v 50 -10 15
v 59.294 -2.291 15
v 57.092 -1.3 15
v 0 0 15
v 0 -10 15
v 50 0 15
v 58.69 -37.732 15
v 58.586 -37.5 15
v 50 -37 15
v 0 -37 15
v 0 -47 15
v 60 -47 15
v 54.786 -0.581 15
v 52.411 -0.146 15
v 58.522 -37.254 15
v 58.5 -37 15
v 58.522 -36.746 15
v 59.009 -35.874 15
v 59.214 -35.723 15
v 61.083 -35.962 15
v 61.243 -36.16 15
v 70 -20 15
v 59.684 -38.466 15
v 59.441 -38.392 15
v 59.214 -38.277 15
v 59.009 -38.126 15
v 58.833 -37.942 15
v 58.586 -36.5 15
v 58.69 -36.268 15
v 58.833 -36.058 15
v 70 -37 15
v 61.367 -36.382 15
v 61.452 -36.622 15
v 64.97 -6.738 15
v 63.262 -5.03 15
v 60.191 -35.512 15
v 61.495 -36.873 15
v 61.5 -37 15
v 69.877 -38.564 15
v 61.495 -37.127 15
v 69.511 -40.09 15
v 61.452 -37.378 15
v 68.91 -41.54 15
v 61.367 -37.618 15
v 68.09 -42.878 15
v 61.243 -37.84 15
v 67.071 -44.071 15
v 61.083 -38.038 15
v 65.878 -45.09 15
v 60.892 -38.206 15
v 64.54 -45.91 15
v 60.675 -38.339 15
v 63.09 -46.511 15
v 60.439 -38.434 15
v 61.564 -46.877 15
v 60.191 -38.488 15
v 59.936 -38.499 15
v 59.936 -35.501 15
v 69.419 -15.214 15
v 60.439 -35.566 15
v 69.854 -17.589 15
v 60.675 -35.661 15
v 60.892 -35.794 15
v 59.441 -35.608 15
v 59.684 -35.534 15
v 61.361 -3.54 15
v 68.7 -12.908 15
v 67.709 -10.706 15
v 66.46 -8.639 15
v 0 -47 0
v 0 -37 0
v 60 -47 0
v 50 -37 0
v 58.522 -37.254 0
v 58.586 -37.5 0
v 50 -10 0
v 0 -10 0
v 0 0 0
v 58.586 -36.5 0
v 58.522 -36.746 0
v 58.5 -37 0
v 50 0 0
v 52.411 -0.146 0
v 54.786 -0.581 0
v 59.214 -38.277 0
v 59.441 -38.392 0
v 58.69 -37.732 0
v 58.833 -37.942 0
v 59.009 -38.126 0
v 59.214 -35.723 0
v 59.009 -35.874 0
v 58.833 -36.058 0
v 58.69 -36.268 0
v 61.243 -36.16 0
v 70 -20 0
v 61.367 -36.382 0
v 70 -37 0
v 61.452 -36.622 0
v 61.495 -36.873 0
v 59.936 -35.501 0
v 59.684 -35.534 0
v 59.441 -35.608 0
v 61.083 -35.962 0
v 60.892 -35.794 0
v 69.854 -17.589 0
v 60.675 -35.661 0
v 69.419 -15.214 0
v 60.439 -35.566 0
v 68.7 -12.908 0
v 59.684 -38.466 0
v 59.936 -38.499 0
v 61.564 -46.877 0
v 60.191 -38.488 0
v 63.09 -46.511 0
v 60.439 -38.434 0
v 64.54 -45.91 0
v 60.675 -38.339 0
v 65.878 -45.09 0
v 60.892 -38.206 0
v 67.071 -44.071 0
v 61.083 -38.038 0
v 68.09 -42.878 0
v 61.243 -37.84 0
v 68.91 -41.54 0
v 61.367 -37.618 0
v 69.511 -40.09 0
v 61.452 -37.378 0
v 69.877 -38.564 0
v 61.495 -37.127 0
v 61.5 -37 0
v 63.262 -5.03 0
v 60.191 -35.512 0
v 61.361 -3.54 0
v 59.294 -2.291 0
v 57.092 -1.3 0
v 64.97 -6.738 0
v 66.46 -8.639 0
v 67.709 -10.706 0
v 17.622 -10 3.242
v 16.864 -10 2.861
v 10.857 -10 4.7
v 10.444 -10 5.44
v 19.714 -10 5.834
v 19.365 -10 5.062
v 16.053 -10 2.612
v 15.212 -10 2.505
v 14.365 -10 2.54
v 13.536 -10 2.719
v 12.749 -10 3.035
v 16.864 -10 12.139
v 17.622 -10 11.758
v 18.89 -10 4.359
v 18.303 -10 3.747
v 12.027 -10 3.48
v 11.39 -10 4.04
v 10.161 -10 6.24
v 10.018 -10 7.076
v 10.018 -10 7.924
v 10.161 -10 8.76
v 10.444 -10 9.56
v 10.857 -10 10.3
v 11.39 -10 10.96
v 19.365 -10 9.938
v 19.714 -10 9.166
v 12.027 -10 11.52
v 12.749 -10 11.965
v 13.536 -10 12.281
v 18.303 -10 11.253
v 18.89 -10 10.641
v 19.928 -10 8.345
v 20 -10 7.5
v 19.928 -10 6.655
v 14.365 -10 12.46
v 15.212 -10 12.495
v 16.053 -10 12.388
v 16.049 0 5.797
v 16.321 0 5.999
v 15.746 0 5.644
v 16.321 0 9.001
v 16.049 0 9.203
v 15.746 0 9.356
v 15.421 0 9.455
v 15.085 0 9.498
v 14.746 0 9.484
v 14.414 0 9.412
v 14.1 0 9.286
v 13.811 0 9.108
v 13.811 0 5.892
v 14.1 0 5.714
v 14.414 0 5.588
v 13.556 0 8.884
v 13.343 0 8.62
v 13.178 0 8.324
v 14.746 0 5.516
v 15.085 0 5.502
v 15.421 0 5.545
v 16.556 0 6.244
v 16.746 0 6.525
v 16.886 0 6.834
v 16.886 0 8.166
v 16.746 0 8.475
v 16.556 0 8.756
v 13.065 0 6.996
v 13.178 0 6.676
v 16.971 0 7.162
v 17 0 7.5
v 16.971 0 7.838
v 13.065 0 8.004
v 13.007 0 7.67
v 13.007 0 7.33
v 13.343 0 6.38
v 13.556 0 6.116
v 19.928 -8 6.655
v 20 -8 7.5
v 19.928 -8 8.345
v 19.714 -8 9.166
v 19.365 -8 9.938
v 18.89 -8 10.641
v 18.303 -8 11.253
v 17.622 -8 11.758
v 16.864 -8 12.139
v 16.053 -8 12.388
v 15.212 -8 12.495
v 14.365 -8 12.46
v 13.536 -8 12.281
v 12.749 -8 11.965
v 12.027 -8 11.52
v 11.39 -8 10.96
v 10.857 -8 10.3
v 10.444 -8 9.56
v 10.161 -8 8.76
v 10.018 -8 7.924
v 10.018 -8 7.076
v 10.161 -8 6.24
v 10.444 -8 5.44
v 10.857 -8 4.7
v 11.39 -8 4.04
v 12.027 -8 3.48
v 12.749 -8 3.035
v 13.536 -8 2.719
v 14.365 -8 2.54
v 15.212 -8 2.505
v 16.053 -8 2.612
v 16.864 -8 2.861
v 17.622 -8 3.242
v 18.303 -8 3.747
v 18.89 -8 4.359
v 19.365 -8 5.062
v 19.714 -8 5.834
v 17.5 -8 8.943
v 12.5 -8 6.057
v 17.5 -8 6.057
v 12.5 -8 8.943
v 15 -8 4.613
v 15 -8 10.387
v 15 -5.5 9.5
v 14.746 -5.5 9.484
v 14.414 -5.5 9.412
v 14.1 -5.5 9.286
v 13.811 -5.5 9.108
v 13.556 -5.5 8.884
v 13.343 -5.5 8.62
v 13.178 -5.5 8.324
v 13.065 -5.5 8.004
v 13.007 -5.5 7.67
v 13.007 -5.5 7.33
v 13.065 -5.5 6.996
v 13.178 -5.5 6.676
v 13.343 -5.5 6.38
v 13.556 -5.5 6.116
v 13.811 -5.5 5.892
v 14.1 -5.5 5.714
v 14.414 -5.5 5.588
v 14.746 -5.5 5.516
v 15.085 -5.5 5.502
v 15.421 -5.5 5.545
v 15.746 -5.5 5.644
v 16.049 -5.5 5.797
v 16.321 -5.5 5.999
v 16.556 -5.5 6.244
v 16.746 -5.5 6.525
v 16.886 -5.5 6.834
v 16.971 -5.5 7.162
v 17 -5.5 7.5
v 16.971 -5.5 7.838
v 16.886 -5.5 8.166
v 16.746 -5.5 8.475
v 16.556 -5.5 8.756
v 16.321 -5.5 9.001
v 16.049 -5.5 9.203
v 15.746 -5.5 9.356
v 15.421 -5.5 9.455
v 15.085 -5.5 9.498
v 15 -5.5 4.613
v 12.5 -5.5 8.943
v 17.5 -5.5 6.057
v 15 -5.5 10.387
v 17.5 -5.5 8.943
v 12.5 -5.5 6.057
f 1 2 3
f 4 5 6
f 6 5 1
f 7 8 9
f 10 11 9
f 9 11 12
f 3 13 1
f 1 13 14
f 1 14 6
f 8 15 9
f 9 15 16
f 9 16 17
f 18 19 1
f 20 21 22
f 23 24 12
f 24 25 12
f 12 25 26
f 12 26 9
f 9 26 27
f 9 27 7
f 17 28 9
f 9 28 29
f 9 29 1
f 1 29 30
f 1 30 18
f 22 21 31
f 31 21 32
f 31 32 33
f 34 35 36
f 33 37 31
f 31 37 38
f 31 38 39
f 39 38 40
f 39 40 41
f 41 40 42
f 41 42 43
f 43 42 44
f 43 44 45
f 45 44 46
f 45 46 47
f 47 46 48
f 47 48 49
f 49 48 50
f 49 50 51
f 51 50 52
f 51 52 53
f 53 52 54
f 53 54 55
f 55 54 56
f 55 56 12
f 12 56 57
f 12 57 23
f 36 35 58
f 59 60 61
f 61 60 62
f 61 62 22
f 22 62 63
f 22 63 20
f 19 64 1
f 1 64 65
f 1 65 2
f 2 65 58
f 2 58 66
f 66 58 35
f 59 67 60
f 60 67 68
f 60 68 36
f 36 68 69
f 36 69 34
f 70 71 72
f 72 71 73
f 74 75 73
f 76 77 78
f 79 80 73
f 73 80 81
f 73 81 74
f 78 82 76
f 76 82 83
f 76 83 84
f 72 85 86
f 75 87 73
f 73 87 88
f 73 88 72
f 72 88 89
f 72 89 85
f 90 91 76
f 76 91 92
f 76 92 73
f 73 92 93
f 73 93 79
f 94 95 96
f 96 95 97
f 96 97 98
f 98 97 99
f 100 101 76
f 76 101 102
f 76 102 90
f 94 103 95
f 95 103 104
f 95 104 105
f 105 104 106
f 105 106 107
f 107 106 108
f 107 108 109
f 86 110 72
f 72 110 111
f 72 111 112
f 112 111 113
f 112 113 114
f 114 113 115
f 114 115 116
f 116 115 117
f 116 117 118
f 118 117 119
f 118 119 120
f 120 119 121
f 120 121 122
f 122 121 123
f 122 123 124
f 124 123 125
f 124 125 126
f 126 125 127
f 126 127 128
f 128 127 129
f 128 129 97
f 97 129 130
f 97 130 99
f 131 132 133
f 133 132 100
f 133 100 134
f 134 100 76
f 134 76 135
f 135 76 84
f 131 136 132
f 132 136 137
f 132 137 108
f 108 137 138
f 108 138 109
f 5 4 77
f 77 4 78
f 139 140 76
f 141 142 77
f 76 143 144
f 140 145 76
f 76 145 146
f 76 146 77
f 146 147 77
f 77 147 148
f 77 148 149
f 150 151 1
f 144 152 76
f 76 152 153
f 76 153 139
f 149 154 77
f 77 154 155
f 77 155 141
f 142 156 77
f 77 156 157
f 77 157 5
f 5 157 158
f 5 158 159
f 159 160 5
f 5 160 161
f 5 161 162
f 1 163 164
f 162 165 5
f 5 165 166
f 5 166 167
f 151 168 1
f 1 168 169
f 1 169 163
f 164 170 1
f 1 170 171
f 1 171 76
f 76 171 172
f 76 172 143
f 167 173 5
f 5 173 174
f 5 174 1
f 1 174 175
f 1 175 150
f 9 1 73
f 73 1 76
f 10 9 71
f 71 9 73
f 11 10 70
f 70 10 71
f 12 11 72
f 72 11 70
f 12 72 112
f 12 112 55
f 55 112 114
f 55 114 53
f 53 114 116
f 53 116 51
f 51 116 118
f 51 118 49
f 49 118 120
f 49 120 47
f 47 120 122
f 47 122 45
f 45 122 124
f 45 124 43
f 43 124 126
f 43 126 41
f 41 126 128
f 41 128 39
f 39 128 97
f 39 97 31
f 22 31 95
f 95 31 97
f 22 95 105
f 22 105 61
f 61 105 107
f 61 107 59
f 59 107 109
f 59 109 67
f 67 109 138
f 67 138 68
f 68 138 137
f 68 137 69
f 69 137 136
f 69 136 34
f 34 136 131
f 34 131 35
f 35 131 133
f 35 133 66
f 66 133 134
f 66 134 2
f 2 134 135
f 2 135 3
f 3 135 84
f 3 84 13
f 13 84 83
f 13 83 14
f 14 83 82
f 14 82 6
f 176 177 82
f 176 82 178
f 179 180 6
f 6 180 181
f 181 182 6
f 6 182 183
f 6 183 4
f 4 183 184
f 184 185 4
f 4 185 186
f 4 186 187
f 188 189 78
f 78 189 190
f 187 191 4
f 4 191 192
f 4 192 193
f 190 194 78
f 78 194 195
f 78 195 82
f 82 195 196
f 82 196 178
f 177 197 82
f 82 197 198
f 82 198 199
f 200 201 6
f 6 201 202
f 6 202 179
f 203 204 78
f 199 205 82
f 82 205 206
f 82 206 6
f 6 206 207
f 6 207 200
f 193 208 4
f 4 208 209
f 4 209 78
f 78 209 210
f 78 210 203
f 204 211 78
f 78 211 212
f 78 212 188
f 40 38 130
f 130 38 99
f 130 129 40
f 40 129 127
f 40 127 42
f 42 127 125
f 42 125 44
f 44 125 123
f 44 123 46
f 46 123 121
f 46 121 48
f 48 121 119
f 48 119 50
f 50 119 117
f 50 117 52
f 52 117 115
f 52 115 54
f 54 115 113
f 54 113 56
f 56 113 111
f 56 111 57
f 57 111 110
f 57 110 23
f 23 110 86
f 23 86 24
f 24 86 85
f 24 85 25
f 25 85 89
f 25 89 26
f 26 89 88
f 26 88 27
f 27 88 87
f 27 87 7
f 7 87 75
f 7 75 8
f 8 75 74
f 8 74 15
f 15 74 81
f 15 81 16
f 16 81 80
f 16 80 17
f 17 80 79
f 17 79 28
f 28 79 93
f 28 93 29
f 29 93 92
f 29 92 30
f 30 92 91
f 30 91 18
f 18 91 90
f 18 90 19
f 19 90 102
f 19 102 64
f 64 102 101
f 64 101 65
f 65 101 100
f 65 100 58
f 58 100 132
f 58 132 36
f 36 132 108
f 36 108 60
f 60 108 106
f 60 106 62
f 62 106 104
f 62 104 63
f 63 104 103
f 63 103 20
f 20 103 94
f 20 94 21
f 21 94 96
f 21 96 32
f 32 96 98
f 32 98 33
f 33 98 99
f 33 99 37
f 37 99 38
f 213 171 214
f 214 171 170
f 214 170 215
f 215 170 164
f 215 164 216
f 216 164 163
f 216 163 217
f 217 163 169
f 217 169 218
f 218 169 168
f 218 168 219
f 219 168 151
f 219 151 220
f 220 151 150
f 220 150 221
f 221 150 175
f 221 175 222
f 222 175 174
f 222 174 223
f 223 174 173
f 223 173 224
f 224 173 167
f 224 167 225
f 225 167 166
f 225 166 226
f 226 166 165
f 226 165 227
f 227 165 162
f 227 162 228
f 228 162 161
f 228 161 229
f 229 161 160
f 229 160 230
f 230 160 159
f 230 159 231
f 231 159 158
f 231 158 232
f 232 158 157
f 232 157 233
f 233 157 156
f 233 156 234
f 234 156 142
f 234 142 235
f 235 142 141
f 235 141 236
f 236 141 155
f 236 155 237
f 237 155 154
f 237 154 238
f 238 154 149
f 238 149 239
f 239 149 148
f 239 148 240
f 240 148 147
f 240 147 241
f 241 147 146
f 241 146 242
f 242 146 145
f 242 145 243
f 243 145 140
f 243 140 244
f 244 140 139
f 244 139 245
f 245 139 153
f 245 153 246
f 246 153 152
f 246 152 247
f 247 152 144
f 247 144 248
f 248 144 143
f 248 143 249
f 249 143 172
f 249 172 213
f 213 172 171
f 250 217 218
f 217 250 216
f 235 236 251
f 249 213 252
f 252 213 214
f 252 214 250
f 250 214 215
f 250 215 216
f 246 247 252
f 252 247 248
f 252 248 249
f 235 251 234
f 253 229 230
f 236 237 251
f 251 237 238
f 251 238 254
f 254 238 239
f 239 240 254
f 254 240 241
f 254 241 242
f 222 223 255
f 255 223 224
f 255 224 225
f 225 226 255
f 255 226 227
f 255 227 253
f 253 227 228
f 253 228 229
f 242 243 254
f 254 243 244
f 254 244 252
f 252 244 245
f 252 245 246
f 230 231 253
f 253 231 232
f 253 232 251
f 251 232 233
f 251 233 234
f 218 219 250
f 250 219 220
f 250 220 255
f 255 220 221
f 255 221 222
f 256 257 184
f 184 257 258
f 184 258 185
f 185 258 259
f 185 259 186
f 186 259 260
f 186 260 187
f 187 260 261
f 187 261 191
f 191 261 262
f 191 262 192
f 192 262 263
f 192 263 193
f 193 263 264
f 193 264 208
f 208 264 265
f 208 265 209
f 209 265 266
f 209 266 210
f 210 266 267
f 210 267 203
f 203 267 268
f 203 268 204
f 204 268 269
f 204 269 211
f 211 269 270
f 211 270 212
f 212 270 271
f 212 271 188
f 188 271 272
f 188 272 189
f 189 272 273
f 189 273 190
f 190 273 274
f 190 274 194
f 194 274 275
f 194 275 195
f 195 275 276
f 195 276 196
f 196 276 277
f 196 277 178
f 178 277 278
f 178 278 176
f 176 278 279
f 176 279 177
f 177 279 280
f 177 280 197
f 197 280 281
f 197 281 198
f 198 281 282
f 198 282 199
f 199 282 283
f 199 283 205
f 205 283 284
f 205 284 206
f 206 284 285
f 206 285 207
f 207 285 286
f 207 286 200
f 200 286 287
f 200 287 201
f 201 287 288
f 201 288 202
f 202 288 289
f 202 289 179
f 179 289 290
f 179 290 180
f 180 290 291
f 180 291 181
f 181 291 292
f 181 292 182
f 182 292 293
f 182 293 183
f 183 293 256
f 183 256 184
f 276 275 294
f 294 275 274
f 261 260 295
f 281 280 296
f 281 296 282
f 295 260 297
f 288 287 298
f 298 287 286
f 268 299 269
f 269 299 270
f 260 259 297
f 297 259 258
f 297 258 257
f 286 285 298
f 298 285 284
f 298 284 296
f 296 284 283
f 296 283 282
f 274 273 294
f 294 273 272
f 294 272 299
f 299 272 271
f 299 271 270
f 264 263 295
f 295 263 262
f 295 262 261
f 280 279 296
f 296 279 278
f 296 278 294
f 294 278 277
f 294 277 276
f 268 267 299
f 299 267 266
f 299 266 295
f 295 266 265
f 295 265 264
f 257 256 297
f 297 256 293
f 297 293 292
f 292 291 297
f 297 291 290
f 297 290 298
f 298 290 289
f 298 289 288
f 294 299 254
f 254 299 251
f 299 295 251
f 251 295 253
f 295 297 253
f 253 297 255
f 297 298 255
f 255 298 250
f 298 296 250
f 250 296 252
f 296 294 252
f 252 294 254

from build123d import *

# Parameters (mm, degrees)
ESQUISSE1_R             = 1.5
BOSS_EXTRU_1_DEPTH      = 15
ESQUISSE3_R             = 5
ENL_V_MAT_EXTRU_1_DEPTH = 2
ESQUISSE4_R             = 2
ENL_V_MAT_EXTRU_2_DEPTH = 9
ENL_V_MAT_EXTRU_3_DEPTH = 2.5


with BuildPart() as part:
    # Esquisse1 → Boss.-Extru.1 (new body)
    with BuildSketch(Plane.XY):
        with BuildLine():
            Line((0, 0), (50, 0))
            ThreePointArc((50, 0), (64.142135624, -5.857864376), (70, -20))
            Line((70, -20), (70, -37))
            ThreePointArc((70, -37), (67.071067812, -44.071067812), (60, -47))
            Line((60, -47), (0, -47))
            Line((0, -47), (0, -37))
            Line((0, -37), (50, -37))
            Line((50, -37), (50, -10))
            Line((50, -10), (0, -10))
            Line((0, -10), (0, 0))
        make_face()
        with Locations((60, -37)):
            Circle(ESQUISSE1_R, mode=Mode.SUBTRACT)
    extrude(amount=BOSS_EXTRU_1_DEPTH)

    # Esquisse3 → Enlèv. mat.-Extru.1 (cut)
    with BuildSketch(Plane.XZ.offset(10)):
        with Locations((15, 7.5)):
            Circle(ESQUISSE3_R)
    extrude(amount=-ENL_V_MAT_EXTRU_1_DEPTH, mode=Mode.SUBTRACT)

    # Esquisse4 → Enlèv. mat.-Extru.2 (cut, through all)
    with BuildSketch(Plane(origin=(0, -8, 0), x_dir=(-1, 0, 0), z_dir=(0, -1, 0))):
        with Locations((-15, -7.5)):
            Circle(ESQUISSE4_R)
    extrude(amount=-ENL_V_MAT_EXTRU_2_DEPTH, mode=Mode.SUBTRACT)

    # Esquisse5 → Enlèv. mat.-Extru.3 (cut)
    with BuildSketch(Plane.XZ.offset(8)):
        Polygon((12.5, 6.056624327), (12.5, 8.943375673), (15, 10.386751346), (17.5, 8.943375673), (17.5, 6.056624327), (15, 4.613248654), align=None)
    extrude(amount=-ENL_V_MAT_EXTRU_3_DEPTH, mode=Mode.SUBTRACT)


solid = part.part
